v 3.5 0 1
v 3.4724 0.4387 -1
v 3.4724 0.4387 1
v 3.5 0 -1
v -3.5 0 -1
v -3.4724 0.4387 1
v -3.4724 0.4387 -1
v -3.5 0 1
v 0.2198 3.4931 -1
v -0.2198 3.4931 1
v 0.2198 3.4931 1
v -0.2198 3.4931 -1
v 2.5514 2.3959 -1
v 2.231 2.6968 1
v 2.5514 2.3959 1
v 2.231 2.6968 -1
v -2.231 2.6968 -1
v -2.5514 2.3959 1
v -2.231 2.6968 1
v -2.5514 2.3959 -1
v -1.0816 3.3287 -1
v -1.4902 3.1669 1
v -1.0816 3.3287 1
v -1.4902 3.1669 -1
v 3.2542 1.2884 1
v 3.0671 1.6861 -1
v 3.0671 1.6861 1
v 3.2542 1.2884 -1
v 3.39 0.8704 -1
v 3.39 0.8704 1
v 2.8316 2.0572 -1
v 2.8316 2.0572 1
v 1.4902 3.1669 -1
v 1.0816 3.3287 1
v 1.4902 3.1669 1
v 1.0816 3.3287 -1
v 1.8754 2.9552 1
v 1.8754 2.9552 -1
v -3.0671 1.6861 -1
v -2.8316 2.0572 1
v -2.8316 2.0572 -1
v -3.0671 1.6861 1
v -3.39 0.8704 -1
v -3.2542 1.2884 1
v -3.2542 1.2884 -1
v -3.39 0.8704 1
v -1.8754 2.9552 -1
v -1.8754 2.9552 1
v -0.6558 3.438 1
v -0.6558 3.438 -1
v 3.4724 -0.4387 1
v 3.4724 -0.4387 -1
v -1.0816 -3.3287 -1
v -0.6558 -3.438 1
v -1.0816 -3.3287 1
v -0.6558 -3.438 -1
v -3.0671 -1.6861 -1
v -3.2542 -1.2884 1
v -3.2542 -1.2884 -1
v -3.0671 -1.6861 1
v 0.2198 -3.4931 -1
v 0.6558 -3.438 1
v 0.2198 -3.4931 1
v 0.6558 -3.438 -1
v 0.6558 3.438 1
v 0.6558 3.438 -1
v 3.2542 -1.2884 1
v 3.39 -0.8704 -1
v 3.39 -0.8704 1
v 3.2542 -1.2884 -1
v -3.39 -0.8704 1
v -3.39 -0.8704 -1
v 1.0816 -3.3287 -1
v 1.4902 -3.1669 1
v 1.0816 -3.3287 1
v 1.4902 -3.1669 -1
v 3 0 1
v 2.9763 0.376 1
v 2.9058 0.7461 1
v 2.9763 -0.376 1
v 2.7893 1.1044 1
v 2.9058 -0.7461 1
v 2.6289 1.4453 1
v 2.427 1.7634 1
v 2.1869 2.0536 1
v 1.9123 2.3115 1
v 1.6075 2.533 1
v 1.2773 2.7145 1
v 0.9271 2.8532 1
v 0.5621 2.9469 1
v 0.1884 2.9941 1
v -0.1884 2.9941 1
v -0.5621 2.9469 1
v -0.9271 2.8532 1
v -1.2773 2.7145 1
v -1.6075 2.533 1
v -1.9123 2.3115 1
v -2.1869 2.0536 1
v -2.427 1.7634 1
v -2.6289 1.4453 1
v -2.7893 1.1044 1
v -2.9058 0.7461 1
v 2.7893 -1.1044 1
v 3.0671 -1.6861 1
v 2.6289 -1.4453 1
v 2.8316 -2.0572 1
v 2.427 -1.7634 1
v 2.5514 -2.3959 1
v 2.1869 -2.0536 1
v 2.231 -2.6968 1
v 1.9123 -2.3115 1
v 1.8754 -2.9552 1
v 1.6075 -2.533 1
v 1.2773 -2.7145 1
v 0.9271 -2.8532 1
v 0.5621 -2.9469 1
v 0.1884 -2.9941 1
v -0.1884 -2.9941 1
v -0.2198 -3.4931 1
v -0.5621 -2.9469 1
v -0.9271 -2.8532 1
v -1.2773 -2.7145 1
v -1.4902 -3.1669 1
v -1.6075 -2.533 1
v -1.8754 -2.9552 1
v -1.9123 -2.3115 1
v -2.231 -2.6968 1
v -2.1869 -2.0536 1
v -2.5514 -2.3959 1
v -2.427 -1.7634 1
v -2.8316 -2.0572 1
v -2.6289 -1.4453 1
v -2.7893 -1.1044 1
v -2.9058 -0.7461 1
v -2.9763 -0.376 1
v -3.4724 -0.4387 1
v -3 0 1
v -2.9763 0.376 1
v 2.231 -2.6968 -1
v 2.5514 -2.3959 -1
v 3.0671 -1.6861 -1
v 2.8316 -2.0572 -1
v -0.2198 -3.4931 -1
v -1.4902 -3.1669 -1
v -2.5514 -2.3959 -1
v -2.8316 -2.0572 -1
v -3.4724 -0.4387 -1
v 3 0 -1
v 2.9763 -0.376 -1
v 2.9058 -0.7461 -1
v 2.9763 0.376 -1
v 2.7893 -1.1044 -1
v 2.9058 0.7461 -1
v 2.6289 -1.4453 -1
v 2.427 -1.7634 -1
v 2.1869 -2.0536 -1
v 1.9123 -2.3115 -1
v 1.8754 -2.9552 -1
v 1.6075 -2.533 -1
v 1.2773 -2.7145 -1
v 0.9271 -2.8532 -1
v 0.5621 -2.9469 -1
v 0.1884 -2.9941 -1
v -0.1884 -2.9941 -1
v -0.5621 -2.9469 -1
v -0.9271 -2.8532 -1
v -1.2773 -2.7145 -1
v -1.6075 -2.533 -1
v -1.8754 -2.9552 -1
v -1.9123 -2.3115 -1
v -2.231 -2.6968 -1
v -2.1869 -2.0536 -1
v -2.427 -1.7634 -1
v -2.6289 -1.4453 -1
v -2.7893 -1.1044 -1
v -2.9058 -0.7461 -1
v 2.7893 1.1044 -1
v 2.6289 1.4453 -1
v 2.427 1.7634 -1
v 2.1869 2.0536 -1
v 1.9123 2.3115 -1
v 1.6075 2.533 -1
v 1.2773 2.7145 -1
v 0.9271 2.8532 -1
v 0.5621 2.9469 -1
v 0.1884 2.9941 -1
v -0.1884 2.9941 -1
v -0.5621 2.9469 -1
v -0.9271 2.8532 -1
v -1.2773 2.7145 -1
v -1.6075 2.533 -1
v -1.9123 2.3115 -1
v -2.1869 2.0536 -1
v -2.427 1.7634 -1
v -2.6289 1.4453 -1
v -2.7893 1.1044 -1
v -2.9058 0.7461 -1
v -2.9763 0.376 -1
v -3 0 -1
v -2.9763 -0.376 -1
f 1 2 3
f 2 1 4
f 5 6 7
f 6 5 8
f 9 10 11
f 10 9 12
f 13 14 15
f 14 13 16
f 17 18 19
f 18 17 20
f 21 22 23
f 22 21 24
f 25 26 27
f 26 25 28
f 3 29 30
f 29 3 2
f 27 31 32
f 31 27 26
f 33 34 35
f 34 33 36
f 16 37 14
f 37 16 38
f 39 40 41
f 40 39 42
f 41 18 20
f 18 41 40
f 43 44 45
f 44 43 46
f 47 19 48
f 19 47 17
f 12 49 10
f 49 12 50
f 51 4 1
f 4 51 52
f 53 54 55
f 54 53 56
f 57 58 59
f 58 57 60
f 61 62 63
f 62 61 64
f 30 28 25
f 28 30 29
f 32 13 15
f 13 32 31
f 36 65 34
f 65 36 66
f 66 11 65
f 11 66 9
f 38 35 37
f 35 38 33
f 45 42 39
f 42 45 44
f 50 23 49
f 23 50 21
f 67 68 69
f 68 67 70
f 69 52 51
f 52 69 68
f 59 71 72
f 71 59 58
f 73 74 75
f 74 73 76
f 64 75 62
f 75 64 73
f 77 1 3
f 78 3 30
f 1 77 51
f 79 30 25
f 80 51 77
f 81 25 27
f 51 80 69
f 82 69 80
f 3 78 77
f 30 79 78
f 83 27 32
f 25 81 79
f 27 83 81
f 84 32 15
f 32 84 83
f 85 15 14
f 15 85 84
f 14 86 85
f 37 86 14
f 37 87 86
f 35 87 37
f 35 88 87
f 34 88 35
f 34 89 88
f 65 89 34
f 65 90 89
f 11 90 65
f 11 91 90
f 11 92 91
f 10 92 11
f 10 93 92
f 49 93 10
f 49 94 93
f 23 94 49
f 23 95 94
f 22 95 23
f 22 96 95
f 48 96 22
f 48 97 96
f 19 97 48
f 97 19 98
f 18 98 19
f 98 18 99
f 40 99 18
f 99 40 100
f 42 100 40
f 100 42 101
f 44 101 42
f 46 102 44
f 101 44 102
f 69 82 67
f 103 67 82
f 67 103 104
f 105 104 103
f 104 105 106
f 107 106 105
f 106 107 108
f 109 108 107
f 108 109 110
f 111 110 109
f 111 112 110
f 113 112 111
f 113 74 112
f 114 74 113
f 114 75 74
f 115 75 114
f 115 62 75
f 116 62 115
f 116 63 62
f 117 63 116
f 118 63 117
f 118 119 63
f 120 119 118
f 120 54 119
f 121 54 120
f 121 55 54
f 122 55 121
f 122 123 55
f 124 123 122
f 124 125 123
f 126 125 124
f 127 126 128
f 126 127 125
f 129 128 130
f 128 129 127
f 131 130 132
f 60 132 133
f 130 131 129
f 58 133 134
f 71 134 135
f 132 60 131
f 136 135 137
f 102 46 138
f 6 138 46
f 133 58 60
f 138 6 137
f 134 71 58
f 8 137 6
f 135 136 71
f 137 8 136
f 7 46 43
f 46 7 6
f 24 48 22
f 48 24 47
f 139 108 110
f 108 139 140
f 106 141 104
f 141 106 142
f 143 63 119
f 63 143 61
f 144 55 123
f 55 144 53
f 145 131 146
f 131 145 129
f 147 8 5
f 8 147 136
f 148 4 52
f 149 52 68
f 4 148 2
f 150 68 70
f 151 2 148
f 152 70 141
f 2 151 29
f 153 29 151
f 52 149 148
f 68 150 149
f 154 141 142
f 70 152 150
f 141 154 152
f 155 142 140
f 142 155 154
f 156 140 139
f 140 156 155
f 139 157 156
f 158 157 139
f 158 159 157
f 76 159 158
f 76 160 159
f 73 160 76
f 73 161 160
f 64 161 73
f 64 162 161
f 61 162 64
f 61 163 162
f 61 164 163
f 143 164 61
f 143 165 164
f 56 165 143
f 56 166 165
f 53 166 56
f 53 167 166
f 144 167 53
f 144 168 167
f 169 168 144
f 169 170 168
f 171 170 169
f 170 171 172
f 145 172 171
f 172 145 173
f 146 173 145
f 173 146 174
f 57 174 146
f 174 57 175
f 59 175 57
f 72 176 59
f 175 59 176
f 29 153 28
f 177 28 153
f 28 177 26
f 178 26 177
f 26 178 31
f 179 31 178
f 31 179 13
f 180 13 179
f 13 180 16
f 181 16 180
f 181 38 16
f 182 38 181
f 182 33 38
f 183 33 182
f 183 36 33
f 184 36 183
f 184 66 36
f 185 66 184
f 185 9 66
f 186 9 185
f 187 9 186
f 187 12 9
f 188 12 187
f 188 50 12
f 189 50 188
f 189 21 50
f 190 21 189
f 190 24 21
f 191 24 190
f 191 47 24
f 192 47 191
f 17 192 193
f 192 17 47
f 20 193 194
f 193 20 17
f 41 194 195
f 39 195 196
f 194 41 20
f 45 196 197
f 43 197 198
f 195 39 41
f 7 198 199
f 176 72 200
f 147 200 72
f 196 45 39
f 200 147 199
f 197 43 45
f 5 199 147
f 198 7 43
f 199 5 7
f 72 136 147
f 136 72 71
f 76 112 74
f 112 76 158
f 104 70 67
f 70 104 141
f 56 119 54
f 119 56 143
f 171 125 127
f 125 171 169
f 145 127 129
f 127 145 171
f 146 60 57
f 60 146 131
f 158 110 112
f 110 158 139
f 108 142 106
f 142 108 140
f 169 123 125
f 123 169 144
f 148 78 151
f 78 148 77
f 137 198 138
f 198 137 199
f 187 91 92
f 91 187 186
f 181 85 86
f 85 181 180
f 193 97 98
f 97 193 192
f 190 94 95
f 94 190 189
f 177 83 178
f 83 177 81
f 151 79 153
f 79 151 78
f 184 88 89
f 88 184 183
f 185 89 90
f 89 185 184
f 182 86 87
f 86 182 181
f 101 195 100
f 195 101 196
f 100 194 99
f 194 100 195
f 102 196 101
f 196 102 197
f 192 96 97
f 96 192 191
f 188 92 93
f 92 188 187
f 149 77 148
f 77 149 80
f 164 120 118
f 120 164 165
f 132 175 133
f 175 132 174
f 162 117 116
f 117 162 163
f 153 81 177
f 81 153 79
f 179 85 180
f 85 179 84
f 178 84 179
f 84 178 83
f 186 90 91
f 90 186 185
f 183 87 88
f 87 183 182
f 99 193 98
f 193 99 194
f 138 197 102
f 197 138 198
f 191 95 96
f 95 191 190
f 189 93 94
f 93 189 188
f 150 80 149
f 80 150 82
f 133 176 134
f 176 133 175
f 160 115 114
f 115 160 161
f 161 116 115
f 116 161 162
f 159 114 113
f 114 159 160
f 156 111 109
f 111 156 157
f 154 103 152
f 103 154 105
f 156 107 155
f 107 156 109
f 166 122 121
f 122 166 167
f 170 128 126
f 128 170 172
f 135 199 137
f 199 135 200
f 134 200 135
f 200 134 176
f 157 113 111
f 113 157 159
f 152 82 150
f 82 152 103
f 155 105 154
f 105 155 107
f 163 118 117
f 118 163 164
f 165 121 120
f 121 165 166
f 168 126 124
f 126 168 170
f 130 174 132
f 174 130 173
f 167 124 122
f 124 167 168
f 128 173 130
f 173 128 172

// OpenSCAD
$fn = 50;


difference() {
	union() {
		translate(v = [0, 0, -1.0000000000]) {
			cylinder(h = 2, r = 3.5000000000);
		}
	}
	union() {
		translate(v = [0, 0, -100.0000000000]) {
			cylinder(h = 200, r = 3.0000000000);
		}
	}
}
